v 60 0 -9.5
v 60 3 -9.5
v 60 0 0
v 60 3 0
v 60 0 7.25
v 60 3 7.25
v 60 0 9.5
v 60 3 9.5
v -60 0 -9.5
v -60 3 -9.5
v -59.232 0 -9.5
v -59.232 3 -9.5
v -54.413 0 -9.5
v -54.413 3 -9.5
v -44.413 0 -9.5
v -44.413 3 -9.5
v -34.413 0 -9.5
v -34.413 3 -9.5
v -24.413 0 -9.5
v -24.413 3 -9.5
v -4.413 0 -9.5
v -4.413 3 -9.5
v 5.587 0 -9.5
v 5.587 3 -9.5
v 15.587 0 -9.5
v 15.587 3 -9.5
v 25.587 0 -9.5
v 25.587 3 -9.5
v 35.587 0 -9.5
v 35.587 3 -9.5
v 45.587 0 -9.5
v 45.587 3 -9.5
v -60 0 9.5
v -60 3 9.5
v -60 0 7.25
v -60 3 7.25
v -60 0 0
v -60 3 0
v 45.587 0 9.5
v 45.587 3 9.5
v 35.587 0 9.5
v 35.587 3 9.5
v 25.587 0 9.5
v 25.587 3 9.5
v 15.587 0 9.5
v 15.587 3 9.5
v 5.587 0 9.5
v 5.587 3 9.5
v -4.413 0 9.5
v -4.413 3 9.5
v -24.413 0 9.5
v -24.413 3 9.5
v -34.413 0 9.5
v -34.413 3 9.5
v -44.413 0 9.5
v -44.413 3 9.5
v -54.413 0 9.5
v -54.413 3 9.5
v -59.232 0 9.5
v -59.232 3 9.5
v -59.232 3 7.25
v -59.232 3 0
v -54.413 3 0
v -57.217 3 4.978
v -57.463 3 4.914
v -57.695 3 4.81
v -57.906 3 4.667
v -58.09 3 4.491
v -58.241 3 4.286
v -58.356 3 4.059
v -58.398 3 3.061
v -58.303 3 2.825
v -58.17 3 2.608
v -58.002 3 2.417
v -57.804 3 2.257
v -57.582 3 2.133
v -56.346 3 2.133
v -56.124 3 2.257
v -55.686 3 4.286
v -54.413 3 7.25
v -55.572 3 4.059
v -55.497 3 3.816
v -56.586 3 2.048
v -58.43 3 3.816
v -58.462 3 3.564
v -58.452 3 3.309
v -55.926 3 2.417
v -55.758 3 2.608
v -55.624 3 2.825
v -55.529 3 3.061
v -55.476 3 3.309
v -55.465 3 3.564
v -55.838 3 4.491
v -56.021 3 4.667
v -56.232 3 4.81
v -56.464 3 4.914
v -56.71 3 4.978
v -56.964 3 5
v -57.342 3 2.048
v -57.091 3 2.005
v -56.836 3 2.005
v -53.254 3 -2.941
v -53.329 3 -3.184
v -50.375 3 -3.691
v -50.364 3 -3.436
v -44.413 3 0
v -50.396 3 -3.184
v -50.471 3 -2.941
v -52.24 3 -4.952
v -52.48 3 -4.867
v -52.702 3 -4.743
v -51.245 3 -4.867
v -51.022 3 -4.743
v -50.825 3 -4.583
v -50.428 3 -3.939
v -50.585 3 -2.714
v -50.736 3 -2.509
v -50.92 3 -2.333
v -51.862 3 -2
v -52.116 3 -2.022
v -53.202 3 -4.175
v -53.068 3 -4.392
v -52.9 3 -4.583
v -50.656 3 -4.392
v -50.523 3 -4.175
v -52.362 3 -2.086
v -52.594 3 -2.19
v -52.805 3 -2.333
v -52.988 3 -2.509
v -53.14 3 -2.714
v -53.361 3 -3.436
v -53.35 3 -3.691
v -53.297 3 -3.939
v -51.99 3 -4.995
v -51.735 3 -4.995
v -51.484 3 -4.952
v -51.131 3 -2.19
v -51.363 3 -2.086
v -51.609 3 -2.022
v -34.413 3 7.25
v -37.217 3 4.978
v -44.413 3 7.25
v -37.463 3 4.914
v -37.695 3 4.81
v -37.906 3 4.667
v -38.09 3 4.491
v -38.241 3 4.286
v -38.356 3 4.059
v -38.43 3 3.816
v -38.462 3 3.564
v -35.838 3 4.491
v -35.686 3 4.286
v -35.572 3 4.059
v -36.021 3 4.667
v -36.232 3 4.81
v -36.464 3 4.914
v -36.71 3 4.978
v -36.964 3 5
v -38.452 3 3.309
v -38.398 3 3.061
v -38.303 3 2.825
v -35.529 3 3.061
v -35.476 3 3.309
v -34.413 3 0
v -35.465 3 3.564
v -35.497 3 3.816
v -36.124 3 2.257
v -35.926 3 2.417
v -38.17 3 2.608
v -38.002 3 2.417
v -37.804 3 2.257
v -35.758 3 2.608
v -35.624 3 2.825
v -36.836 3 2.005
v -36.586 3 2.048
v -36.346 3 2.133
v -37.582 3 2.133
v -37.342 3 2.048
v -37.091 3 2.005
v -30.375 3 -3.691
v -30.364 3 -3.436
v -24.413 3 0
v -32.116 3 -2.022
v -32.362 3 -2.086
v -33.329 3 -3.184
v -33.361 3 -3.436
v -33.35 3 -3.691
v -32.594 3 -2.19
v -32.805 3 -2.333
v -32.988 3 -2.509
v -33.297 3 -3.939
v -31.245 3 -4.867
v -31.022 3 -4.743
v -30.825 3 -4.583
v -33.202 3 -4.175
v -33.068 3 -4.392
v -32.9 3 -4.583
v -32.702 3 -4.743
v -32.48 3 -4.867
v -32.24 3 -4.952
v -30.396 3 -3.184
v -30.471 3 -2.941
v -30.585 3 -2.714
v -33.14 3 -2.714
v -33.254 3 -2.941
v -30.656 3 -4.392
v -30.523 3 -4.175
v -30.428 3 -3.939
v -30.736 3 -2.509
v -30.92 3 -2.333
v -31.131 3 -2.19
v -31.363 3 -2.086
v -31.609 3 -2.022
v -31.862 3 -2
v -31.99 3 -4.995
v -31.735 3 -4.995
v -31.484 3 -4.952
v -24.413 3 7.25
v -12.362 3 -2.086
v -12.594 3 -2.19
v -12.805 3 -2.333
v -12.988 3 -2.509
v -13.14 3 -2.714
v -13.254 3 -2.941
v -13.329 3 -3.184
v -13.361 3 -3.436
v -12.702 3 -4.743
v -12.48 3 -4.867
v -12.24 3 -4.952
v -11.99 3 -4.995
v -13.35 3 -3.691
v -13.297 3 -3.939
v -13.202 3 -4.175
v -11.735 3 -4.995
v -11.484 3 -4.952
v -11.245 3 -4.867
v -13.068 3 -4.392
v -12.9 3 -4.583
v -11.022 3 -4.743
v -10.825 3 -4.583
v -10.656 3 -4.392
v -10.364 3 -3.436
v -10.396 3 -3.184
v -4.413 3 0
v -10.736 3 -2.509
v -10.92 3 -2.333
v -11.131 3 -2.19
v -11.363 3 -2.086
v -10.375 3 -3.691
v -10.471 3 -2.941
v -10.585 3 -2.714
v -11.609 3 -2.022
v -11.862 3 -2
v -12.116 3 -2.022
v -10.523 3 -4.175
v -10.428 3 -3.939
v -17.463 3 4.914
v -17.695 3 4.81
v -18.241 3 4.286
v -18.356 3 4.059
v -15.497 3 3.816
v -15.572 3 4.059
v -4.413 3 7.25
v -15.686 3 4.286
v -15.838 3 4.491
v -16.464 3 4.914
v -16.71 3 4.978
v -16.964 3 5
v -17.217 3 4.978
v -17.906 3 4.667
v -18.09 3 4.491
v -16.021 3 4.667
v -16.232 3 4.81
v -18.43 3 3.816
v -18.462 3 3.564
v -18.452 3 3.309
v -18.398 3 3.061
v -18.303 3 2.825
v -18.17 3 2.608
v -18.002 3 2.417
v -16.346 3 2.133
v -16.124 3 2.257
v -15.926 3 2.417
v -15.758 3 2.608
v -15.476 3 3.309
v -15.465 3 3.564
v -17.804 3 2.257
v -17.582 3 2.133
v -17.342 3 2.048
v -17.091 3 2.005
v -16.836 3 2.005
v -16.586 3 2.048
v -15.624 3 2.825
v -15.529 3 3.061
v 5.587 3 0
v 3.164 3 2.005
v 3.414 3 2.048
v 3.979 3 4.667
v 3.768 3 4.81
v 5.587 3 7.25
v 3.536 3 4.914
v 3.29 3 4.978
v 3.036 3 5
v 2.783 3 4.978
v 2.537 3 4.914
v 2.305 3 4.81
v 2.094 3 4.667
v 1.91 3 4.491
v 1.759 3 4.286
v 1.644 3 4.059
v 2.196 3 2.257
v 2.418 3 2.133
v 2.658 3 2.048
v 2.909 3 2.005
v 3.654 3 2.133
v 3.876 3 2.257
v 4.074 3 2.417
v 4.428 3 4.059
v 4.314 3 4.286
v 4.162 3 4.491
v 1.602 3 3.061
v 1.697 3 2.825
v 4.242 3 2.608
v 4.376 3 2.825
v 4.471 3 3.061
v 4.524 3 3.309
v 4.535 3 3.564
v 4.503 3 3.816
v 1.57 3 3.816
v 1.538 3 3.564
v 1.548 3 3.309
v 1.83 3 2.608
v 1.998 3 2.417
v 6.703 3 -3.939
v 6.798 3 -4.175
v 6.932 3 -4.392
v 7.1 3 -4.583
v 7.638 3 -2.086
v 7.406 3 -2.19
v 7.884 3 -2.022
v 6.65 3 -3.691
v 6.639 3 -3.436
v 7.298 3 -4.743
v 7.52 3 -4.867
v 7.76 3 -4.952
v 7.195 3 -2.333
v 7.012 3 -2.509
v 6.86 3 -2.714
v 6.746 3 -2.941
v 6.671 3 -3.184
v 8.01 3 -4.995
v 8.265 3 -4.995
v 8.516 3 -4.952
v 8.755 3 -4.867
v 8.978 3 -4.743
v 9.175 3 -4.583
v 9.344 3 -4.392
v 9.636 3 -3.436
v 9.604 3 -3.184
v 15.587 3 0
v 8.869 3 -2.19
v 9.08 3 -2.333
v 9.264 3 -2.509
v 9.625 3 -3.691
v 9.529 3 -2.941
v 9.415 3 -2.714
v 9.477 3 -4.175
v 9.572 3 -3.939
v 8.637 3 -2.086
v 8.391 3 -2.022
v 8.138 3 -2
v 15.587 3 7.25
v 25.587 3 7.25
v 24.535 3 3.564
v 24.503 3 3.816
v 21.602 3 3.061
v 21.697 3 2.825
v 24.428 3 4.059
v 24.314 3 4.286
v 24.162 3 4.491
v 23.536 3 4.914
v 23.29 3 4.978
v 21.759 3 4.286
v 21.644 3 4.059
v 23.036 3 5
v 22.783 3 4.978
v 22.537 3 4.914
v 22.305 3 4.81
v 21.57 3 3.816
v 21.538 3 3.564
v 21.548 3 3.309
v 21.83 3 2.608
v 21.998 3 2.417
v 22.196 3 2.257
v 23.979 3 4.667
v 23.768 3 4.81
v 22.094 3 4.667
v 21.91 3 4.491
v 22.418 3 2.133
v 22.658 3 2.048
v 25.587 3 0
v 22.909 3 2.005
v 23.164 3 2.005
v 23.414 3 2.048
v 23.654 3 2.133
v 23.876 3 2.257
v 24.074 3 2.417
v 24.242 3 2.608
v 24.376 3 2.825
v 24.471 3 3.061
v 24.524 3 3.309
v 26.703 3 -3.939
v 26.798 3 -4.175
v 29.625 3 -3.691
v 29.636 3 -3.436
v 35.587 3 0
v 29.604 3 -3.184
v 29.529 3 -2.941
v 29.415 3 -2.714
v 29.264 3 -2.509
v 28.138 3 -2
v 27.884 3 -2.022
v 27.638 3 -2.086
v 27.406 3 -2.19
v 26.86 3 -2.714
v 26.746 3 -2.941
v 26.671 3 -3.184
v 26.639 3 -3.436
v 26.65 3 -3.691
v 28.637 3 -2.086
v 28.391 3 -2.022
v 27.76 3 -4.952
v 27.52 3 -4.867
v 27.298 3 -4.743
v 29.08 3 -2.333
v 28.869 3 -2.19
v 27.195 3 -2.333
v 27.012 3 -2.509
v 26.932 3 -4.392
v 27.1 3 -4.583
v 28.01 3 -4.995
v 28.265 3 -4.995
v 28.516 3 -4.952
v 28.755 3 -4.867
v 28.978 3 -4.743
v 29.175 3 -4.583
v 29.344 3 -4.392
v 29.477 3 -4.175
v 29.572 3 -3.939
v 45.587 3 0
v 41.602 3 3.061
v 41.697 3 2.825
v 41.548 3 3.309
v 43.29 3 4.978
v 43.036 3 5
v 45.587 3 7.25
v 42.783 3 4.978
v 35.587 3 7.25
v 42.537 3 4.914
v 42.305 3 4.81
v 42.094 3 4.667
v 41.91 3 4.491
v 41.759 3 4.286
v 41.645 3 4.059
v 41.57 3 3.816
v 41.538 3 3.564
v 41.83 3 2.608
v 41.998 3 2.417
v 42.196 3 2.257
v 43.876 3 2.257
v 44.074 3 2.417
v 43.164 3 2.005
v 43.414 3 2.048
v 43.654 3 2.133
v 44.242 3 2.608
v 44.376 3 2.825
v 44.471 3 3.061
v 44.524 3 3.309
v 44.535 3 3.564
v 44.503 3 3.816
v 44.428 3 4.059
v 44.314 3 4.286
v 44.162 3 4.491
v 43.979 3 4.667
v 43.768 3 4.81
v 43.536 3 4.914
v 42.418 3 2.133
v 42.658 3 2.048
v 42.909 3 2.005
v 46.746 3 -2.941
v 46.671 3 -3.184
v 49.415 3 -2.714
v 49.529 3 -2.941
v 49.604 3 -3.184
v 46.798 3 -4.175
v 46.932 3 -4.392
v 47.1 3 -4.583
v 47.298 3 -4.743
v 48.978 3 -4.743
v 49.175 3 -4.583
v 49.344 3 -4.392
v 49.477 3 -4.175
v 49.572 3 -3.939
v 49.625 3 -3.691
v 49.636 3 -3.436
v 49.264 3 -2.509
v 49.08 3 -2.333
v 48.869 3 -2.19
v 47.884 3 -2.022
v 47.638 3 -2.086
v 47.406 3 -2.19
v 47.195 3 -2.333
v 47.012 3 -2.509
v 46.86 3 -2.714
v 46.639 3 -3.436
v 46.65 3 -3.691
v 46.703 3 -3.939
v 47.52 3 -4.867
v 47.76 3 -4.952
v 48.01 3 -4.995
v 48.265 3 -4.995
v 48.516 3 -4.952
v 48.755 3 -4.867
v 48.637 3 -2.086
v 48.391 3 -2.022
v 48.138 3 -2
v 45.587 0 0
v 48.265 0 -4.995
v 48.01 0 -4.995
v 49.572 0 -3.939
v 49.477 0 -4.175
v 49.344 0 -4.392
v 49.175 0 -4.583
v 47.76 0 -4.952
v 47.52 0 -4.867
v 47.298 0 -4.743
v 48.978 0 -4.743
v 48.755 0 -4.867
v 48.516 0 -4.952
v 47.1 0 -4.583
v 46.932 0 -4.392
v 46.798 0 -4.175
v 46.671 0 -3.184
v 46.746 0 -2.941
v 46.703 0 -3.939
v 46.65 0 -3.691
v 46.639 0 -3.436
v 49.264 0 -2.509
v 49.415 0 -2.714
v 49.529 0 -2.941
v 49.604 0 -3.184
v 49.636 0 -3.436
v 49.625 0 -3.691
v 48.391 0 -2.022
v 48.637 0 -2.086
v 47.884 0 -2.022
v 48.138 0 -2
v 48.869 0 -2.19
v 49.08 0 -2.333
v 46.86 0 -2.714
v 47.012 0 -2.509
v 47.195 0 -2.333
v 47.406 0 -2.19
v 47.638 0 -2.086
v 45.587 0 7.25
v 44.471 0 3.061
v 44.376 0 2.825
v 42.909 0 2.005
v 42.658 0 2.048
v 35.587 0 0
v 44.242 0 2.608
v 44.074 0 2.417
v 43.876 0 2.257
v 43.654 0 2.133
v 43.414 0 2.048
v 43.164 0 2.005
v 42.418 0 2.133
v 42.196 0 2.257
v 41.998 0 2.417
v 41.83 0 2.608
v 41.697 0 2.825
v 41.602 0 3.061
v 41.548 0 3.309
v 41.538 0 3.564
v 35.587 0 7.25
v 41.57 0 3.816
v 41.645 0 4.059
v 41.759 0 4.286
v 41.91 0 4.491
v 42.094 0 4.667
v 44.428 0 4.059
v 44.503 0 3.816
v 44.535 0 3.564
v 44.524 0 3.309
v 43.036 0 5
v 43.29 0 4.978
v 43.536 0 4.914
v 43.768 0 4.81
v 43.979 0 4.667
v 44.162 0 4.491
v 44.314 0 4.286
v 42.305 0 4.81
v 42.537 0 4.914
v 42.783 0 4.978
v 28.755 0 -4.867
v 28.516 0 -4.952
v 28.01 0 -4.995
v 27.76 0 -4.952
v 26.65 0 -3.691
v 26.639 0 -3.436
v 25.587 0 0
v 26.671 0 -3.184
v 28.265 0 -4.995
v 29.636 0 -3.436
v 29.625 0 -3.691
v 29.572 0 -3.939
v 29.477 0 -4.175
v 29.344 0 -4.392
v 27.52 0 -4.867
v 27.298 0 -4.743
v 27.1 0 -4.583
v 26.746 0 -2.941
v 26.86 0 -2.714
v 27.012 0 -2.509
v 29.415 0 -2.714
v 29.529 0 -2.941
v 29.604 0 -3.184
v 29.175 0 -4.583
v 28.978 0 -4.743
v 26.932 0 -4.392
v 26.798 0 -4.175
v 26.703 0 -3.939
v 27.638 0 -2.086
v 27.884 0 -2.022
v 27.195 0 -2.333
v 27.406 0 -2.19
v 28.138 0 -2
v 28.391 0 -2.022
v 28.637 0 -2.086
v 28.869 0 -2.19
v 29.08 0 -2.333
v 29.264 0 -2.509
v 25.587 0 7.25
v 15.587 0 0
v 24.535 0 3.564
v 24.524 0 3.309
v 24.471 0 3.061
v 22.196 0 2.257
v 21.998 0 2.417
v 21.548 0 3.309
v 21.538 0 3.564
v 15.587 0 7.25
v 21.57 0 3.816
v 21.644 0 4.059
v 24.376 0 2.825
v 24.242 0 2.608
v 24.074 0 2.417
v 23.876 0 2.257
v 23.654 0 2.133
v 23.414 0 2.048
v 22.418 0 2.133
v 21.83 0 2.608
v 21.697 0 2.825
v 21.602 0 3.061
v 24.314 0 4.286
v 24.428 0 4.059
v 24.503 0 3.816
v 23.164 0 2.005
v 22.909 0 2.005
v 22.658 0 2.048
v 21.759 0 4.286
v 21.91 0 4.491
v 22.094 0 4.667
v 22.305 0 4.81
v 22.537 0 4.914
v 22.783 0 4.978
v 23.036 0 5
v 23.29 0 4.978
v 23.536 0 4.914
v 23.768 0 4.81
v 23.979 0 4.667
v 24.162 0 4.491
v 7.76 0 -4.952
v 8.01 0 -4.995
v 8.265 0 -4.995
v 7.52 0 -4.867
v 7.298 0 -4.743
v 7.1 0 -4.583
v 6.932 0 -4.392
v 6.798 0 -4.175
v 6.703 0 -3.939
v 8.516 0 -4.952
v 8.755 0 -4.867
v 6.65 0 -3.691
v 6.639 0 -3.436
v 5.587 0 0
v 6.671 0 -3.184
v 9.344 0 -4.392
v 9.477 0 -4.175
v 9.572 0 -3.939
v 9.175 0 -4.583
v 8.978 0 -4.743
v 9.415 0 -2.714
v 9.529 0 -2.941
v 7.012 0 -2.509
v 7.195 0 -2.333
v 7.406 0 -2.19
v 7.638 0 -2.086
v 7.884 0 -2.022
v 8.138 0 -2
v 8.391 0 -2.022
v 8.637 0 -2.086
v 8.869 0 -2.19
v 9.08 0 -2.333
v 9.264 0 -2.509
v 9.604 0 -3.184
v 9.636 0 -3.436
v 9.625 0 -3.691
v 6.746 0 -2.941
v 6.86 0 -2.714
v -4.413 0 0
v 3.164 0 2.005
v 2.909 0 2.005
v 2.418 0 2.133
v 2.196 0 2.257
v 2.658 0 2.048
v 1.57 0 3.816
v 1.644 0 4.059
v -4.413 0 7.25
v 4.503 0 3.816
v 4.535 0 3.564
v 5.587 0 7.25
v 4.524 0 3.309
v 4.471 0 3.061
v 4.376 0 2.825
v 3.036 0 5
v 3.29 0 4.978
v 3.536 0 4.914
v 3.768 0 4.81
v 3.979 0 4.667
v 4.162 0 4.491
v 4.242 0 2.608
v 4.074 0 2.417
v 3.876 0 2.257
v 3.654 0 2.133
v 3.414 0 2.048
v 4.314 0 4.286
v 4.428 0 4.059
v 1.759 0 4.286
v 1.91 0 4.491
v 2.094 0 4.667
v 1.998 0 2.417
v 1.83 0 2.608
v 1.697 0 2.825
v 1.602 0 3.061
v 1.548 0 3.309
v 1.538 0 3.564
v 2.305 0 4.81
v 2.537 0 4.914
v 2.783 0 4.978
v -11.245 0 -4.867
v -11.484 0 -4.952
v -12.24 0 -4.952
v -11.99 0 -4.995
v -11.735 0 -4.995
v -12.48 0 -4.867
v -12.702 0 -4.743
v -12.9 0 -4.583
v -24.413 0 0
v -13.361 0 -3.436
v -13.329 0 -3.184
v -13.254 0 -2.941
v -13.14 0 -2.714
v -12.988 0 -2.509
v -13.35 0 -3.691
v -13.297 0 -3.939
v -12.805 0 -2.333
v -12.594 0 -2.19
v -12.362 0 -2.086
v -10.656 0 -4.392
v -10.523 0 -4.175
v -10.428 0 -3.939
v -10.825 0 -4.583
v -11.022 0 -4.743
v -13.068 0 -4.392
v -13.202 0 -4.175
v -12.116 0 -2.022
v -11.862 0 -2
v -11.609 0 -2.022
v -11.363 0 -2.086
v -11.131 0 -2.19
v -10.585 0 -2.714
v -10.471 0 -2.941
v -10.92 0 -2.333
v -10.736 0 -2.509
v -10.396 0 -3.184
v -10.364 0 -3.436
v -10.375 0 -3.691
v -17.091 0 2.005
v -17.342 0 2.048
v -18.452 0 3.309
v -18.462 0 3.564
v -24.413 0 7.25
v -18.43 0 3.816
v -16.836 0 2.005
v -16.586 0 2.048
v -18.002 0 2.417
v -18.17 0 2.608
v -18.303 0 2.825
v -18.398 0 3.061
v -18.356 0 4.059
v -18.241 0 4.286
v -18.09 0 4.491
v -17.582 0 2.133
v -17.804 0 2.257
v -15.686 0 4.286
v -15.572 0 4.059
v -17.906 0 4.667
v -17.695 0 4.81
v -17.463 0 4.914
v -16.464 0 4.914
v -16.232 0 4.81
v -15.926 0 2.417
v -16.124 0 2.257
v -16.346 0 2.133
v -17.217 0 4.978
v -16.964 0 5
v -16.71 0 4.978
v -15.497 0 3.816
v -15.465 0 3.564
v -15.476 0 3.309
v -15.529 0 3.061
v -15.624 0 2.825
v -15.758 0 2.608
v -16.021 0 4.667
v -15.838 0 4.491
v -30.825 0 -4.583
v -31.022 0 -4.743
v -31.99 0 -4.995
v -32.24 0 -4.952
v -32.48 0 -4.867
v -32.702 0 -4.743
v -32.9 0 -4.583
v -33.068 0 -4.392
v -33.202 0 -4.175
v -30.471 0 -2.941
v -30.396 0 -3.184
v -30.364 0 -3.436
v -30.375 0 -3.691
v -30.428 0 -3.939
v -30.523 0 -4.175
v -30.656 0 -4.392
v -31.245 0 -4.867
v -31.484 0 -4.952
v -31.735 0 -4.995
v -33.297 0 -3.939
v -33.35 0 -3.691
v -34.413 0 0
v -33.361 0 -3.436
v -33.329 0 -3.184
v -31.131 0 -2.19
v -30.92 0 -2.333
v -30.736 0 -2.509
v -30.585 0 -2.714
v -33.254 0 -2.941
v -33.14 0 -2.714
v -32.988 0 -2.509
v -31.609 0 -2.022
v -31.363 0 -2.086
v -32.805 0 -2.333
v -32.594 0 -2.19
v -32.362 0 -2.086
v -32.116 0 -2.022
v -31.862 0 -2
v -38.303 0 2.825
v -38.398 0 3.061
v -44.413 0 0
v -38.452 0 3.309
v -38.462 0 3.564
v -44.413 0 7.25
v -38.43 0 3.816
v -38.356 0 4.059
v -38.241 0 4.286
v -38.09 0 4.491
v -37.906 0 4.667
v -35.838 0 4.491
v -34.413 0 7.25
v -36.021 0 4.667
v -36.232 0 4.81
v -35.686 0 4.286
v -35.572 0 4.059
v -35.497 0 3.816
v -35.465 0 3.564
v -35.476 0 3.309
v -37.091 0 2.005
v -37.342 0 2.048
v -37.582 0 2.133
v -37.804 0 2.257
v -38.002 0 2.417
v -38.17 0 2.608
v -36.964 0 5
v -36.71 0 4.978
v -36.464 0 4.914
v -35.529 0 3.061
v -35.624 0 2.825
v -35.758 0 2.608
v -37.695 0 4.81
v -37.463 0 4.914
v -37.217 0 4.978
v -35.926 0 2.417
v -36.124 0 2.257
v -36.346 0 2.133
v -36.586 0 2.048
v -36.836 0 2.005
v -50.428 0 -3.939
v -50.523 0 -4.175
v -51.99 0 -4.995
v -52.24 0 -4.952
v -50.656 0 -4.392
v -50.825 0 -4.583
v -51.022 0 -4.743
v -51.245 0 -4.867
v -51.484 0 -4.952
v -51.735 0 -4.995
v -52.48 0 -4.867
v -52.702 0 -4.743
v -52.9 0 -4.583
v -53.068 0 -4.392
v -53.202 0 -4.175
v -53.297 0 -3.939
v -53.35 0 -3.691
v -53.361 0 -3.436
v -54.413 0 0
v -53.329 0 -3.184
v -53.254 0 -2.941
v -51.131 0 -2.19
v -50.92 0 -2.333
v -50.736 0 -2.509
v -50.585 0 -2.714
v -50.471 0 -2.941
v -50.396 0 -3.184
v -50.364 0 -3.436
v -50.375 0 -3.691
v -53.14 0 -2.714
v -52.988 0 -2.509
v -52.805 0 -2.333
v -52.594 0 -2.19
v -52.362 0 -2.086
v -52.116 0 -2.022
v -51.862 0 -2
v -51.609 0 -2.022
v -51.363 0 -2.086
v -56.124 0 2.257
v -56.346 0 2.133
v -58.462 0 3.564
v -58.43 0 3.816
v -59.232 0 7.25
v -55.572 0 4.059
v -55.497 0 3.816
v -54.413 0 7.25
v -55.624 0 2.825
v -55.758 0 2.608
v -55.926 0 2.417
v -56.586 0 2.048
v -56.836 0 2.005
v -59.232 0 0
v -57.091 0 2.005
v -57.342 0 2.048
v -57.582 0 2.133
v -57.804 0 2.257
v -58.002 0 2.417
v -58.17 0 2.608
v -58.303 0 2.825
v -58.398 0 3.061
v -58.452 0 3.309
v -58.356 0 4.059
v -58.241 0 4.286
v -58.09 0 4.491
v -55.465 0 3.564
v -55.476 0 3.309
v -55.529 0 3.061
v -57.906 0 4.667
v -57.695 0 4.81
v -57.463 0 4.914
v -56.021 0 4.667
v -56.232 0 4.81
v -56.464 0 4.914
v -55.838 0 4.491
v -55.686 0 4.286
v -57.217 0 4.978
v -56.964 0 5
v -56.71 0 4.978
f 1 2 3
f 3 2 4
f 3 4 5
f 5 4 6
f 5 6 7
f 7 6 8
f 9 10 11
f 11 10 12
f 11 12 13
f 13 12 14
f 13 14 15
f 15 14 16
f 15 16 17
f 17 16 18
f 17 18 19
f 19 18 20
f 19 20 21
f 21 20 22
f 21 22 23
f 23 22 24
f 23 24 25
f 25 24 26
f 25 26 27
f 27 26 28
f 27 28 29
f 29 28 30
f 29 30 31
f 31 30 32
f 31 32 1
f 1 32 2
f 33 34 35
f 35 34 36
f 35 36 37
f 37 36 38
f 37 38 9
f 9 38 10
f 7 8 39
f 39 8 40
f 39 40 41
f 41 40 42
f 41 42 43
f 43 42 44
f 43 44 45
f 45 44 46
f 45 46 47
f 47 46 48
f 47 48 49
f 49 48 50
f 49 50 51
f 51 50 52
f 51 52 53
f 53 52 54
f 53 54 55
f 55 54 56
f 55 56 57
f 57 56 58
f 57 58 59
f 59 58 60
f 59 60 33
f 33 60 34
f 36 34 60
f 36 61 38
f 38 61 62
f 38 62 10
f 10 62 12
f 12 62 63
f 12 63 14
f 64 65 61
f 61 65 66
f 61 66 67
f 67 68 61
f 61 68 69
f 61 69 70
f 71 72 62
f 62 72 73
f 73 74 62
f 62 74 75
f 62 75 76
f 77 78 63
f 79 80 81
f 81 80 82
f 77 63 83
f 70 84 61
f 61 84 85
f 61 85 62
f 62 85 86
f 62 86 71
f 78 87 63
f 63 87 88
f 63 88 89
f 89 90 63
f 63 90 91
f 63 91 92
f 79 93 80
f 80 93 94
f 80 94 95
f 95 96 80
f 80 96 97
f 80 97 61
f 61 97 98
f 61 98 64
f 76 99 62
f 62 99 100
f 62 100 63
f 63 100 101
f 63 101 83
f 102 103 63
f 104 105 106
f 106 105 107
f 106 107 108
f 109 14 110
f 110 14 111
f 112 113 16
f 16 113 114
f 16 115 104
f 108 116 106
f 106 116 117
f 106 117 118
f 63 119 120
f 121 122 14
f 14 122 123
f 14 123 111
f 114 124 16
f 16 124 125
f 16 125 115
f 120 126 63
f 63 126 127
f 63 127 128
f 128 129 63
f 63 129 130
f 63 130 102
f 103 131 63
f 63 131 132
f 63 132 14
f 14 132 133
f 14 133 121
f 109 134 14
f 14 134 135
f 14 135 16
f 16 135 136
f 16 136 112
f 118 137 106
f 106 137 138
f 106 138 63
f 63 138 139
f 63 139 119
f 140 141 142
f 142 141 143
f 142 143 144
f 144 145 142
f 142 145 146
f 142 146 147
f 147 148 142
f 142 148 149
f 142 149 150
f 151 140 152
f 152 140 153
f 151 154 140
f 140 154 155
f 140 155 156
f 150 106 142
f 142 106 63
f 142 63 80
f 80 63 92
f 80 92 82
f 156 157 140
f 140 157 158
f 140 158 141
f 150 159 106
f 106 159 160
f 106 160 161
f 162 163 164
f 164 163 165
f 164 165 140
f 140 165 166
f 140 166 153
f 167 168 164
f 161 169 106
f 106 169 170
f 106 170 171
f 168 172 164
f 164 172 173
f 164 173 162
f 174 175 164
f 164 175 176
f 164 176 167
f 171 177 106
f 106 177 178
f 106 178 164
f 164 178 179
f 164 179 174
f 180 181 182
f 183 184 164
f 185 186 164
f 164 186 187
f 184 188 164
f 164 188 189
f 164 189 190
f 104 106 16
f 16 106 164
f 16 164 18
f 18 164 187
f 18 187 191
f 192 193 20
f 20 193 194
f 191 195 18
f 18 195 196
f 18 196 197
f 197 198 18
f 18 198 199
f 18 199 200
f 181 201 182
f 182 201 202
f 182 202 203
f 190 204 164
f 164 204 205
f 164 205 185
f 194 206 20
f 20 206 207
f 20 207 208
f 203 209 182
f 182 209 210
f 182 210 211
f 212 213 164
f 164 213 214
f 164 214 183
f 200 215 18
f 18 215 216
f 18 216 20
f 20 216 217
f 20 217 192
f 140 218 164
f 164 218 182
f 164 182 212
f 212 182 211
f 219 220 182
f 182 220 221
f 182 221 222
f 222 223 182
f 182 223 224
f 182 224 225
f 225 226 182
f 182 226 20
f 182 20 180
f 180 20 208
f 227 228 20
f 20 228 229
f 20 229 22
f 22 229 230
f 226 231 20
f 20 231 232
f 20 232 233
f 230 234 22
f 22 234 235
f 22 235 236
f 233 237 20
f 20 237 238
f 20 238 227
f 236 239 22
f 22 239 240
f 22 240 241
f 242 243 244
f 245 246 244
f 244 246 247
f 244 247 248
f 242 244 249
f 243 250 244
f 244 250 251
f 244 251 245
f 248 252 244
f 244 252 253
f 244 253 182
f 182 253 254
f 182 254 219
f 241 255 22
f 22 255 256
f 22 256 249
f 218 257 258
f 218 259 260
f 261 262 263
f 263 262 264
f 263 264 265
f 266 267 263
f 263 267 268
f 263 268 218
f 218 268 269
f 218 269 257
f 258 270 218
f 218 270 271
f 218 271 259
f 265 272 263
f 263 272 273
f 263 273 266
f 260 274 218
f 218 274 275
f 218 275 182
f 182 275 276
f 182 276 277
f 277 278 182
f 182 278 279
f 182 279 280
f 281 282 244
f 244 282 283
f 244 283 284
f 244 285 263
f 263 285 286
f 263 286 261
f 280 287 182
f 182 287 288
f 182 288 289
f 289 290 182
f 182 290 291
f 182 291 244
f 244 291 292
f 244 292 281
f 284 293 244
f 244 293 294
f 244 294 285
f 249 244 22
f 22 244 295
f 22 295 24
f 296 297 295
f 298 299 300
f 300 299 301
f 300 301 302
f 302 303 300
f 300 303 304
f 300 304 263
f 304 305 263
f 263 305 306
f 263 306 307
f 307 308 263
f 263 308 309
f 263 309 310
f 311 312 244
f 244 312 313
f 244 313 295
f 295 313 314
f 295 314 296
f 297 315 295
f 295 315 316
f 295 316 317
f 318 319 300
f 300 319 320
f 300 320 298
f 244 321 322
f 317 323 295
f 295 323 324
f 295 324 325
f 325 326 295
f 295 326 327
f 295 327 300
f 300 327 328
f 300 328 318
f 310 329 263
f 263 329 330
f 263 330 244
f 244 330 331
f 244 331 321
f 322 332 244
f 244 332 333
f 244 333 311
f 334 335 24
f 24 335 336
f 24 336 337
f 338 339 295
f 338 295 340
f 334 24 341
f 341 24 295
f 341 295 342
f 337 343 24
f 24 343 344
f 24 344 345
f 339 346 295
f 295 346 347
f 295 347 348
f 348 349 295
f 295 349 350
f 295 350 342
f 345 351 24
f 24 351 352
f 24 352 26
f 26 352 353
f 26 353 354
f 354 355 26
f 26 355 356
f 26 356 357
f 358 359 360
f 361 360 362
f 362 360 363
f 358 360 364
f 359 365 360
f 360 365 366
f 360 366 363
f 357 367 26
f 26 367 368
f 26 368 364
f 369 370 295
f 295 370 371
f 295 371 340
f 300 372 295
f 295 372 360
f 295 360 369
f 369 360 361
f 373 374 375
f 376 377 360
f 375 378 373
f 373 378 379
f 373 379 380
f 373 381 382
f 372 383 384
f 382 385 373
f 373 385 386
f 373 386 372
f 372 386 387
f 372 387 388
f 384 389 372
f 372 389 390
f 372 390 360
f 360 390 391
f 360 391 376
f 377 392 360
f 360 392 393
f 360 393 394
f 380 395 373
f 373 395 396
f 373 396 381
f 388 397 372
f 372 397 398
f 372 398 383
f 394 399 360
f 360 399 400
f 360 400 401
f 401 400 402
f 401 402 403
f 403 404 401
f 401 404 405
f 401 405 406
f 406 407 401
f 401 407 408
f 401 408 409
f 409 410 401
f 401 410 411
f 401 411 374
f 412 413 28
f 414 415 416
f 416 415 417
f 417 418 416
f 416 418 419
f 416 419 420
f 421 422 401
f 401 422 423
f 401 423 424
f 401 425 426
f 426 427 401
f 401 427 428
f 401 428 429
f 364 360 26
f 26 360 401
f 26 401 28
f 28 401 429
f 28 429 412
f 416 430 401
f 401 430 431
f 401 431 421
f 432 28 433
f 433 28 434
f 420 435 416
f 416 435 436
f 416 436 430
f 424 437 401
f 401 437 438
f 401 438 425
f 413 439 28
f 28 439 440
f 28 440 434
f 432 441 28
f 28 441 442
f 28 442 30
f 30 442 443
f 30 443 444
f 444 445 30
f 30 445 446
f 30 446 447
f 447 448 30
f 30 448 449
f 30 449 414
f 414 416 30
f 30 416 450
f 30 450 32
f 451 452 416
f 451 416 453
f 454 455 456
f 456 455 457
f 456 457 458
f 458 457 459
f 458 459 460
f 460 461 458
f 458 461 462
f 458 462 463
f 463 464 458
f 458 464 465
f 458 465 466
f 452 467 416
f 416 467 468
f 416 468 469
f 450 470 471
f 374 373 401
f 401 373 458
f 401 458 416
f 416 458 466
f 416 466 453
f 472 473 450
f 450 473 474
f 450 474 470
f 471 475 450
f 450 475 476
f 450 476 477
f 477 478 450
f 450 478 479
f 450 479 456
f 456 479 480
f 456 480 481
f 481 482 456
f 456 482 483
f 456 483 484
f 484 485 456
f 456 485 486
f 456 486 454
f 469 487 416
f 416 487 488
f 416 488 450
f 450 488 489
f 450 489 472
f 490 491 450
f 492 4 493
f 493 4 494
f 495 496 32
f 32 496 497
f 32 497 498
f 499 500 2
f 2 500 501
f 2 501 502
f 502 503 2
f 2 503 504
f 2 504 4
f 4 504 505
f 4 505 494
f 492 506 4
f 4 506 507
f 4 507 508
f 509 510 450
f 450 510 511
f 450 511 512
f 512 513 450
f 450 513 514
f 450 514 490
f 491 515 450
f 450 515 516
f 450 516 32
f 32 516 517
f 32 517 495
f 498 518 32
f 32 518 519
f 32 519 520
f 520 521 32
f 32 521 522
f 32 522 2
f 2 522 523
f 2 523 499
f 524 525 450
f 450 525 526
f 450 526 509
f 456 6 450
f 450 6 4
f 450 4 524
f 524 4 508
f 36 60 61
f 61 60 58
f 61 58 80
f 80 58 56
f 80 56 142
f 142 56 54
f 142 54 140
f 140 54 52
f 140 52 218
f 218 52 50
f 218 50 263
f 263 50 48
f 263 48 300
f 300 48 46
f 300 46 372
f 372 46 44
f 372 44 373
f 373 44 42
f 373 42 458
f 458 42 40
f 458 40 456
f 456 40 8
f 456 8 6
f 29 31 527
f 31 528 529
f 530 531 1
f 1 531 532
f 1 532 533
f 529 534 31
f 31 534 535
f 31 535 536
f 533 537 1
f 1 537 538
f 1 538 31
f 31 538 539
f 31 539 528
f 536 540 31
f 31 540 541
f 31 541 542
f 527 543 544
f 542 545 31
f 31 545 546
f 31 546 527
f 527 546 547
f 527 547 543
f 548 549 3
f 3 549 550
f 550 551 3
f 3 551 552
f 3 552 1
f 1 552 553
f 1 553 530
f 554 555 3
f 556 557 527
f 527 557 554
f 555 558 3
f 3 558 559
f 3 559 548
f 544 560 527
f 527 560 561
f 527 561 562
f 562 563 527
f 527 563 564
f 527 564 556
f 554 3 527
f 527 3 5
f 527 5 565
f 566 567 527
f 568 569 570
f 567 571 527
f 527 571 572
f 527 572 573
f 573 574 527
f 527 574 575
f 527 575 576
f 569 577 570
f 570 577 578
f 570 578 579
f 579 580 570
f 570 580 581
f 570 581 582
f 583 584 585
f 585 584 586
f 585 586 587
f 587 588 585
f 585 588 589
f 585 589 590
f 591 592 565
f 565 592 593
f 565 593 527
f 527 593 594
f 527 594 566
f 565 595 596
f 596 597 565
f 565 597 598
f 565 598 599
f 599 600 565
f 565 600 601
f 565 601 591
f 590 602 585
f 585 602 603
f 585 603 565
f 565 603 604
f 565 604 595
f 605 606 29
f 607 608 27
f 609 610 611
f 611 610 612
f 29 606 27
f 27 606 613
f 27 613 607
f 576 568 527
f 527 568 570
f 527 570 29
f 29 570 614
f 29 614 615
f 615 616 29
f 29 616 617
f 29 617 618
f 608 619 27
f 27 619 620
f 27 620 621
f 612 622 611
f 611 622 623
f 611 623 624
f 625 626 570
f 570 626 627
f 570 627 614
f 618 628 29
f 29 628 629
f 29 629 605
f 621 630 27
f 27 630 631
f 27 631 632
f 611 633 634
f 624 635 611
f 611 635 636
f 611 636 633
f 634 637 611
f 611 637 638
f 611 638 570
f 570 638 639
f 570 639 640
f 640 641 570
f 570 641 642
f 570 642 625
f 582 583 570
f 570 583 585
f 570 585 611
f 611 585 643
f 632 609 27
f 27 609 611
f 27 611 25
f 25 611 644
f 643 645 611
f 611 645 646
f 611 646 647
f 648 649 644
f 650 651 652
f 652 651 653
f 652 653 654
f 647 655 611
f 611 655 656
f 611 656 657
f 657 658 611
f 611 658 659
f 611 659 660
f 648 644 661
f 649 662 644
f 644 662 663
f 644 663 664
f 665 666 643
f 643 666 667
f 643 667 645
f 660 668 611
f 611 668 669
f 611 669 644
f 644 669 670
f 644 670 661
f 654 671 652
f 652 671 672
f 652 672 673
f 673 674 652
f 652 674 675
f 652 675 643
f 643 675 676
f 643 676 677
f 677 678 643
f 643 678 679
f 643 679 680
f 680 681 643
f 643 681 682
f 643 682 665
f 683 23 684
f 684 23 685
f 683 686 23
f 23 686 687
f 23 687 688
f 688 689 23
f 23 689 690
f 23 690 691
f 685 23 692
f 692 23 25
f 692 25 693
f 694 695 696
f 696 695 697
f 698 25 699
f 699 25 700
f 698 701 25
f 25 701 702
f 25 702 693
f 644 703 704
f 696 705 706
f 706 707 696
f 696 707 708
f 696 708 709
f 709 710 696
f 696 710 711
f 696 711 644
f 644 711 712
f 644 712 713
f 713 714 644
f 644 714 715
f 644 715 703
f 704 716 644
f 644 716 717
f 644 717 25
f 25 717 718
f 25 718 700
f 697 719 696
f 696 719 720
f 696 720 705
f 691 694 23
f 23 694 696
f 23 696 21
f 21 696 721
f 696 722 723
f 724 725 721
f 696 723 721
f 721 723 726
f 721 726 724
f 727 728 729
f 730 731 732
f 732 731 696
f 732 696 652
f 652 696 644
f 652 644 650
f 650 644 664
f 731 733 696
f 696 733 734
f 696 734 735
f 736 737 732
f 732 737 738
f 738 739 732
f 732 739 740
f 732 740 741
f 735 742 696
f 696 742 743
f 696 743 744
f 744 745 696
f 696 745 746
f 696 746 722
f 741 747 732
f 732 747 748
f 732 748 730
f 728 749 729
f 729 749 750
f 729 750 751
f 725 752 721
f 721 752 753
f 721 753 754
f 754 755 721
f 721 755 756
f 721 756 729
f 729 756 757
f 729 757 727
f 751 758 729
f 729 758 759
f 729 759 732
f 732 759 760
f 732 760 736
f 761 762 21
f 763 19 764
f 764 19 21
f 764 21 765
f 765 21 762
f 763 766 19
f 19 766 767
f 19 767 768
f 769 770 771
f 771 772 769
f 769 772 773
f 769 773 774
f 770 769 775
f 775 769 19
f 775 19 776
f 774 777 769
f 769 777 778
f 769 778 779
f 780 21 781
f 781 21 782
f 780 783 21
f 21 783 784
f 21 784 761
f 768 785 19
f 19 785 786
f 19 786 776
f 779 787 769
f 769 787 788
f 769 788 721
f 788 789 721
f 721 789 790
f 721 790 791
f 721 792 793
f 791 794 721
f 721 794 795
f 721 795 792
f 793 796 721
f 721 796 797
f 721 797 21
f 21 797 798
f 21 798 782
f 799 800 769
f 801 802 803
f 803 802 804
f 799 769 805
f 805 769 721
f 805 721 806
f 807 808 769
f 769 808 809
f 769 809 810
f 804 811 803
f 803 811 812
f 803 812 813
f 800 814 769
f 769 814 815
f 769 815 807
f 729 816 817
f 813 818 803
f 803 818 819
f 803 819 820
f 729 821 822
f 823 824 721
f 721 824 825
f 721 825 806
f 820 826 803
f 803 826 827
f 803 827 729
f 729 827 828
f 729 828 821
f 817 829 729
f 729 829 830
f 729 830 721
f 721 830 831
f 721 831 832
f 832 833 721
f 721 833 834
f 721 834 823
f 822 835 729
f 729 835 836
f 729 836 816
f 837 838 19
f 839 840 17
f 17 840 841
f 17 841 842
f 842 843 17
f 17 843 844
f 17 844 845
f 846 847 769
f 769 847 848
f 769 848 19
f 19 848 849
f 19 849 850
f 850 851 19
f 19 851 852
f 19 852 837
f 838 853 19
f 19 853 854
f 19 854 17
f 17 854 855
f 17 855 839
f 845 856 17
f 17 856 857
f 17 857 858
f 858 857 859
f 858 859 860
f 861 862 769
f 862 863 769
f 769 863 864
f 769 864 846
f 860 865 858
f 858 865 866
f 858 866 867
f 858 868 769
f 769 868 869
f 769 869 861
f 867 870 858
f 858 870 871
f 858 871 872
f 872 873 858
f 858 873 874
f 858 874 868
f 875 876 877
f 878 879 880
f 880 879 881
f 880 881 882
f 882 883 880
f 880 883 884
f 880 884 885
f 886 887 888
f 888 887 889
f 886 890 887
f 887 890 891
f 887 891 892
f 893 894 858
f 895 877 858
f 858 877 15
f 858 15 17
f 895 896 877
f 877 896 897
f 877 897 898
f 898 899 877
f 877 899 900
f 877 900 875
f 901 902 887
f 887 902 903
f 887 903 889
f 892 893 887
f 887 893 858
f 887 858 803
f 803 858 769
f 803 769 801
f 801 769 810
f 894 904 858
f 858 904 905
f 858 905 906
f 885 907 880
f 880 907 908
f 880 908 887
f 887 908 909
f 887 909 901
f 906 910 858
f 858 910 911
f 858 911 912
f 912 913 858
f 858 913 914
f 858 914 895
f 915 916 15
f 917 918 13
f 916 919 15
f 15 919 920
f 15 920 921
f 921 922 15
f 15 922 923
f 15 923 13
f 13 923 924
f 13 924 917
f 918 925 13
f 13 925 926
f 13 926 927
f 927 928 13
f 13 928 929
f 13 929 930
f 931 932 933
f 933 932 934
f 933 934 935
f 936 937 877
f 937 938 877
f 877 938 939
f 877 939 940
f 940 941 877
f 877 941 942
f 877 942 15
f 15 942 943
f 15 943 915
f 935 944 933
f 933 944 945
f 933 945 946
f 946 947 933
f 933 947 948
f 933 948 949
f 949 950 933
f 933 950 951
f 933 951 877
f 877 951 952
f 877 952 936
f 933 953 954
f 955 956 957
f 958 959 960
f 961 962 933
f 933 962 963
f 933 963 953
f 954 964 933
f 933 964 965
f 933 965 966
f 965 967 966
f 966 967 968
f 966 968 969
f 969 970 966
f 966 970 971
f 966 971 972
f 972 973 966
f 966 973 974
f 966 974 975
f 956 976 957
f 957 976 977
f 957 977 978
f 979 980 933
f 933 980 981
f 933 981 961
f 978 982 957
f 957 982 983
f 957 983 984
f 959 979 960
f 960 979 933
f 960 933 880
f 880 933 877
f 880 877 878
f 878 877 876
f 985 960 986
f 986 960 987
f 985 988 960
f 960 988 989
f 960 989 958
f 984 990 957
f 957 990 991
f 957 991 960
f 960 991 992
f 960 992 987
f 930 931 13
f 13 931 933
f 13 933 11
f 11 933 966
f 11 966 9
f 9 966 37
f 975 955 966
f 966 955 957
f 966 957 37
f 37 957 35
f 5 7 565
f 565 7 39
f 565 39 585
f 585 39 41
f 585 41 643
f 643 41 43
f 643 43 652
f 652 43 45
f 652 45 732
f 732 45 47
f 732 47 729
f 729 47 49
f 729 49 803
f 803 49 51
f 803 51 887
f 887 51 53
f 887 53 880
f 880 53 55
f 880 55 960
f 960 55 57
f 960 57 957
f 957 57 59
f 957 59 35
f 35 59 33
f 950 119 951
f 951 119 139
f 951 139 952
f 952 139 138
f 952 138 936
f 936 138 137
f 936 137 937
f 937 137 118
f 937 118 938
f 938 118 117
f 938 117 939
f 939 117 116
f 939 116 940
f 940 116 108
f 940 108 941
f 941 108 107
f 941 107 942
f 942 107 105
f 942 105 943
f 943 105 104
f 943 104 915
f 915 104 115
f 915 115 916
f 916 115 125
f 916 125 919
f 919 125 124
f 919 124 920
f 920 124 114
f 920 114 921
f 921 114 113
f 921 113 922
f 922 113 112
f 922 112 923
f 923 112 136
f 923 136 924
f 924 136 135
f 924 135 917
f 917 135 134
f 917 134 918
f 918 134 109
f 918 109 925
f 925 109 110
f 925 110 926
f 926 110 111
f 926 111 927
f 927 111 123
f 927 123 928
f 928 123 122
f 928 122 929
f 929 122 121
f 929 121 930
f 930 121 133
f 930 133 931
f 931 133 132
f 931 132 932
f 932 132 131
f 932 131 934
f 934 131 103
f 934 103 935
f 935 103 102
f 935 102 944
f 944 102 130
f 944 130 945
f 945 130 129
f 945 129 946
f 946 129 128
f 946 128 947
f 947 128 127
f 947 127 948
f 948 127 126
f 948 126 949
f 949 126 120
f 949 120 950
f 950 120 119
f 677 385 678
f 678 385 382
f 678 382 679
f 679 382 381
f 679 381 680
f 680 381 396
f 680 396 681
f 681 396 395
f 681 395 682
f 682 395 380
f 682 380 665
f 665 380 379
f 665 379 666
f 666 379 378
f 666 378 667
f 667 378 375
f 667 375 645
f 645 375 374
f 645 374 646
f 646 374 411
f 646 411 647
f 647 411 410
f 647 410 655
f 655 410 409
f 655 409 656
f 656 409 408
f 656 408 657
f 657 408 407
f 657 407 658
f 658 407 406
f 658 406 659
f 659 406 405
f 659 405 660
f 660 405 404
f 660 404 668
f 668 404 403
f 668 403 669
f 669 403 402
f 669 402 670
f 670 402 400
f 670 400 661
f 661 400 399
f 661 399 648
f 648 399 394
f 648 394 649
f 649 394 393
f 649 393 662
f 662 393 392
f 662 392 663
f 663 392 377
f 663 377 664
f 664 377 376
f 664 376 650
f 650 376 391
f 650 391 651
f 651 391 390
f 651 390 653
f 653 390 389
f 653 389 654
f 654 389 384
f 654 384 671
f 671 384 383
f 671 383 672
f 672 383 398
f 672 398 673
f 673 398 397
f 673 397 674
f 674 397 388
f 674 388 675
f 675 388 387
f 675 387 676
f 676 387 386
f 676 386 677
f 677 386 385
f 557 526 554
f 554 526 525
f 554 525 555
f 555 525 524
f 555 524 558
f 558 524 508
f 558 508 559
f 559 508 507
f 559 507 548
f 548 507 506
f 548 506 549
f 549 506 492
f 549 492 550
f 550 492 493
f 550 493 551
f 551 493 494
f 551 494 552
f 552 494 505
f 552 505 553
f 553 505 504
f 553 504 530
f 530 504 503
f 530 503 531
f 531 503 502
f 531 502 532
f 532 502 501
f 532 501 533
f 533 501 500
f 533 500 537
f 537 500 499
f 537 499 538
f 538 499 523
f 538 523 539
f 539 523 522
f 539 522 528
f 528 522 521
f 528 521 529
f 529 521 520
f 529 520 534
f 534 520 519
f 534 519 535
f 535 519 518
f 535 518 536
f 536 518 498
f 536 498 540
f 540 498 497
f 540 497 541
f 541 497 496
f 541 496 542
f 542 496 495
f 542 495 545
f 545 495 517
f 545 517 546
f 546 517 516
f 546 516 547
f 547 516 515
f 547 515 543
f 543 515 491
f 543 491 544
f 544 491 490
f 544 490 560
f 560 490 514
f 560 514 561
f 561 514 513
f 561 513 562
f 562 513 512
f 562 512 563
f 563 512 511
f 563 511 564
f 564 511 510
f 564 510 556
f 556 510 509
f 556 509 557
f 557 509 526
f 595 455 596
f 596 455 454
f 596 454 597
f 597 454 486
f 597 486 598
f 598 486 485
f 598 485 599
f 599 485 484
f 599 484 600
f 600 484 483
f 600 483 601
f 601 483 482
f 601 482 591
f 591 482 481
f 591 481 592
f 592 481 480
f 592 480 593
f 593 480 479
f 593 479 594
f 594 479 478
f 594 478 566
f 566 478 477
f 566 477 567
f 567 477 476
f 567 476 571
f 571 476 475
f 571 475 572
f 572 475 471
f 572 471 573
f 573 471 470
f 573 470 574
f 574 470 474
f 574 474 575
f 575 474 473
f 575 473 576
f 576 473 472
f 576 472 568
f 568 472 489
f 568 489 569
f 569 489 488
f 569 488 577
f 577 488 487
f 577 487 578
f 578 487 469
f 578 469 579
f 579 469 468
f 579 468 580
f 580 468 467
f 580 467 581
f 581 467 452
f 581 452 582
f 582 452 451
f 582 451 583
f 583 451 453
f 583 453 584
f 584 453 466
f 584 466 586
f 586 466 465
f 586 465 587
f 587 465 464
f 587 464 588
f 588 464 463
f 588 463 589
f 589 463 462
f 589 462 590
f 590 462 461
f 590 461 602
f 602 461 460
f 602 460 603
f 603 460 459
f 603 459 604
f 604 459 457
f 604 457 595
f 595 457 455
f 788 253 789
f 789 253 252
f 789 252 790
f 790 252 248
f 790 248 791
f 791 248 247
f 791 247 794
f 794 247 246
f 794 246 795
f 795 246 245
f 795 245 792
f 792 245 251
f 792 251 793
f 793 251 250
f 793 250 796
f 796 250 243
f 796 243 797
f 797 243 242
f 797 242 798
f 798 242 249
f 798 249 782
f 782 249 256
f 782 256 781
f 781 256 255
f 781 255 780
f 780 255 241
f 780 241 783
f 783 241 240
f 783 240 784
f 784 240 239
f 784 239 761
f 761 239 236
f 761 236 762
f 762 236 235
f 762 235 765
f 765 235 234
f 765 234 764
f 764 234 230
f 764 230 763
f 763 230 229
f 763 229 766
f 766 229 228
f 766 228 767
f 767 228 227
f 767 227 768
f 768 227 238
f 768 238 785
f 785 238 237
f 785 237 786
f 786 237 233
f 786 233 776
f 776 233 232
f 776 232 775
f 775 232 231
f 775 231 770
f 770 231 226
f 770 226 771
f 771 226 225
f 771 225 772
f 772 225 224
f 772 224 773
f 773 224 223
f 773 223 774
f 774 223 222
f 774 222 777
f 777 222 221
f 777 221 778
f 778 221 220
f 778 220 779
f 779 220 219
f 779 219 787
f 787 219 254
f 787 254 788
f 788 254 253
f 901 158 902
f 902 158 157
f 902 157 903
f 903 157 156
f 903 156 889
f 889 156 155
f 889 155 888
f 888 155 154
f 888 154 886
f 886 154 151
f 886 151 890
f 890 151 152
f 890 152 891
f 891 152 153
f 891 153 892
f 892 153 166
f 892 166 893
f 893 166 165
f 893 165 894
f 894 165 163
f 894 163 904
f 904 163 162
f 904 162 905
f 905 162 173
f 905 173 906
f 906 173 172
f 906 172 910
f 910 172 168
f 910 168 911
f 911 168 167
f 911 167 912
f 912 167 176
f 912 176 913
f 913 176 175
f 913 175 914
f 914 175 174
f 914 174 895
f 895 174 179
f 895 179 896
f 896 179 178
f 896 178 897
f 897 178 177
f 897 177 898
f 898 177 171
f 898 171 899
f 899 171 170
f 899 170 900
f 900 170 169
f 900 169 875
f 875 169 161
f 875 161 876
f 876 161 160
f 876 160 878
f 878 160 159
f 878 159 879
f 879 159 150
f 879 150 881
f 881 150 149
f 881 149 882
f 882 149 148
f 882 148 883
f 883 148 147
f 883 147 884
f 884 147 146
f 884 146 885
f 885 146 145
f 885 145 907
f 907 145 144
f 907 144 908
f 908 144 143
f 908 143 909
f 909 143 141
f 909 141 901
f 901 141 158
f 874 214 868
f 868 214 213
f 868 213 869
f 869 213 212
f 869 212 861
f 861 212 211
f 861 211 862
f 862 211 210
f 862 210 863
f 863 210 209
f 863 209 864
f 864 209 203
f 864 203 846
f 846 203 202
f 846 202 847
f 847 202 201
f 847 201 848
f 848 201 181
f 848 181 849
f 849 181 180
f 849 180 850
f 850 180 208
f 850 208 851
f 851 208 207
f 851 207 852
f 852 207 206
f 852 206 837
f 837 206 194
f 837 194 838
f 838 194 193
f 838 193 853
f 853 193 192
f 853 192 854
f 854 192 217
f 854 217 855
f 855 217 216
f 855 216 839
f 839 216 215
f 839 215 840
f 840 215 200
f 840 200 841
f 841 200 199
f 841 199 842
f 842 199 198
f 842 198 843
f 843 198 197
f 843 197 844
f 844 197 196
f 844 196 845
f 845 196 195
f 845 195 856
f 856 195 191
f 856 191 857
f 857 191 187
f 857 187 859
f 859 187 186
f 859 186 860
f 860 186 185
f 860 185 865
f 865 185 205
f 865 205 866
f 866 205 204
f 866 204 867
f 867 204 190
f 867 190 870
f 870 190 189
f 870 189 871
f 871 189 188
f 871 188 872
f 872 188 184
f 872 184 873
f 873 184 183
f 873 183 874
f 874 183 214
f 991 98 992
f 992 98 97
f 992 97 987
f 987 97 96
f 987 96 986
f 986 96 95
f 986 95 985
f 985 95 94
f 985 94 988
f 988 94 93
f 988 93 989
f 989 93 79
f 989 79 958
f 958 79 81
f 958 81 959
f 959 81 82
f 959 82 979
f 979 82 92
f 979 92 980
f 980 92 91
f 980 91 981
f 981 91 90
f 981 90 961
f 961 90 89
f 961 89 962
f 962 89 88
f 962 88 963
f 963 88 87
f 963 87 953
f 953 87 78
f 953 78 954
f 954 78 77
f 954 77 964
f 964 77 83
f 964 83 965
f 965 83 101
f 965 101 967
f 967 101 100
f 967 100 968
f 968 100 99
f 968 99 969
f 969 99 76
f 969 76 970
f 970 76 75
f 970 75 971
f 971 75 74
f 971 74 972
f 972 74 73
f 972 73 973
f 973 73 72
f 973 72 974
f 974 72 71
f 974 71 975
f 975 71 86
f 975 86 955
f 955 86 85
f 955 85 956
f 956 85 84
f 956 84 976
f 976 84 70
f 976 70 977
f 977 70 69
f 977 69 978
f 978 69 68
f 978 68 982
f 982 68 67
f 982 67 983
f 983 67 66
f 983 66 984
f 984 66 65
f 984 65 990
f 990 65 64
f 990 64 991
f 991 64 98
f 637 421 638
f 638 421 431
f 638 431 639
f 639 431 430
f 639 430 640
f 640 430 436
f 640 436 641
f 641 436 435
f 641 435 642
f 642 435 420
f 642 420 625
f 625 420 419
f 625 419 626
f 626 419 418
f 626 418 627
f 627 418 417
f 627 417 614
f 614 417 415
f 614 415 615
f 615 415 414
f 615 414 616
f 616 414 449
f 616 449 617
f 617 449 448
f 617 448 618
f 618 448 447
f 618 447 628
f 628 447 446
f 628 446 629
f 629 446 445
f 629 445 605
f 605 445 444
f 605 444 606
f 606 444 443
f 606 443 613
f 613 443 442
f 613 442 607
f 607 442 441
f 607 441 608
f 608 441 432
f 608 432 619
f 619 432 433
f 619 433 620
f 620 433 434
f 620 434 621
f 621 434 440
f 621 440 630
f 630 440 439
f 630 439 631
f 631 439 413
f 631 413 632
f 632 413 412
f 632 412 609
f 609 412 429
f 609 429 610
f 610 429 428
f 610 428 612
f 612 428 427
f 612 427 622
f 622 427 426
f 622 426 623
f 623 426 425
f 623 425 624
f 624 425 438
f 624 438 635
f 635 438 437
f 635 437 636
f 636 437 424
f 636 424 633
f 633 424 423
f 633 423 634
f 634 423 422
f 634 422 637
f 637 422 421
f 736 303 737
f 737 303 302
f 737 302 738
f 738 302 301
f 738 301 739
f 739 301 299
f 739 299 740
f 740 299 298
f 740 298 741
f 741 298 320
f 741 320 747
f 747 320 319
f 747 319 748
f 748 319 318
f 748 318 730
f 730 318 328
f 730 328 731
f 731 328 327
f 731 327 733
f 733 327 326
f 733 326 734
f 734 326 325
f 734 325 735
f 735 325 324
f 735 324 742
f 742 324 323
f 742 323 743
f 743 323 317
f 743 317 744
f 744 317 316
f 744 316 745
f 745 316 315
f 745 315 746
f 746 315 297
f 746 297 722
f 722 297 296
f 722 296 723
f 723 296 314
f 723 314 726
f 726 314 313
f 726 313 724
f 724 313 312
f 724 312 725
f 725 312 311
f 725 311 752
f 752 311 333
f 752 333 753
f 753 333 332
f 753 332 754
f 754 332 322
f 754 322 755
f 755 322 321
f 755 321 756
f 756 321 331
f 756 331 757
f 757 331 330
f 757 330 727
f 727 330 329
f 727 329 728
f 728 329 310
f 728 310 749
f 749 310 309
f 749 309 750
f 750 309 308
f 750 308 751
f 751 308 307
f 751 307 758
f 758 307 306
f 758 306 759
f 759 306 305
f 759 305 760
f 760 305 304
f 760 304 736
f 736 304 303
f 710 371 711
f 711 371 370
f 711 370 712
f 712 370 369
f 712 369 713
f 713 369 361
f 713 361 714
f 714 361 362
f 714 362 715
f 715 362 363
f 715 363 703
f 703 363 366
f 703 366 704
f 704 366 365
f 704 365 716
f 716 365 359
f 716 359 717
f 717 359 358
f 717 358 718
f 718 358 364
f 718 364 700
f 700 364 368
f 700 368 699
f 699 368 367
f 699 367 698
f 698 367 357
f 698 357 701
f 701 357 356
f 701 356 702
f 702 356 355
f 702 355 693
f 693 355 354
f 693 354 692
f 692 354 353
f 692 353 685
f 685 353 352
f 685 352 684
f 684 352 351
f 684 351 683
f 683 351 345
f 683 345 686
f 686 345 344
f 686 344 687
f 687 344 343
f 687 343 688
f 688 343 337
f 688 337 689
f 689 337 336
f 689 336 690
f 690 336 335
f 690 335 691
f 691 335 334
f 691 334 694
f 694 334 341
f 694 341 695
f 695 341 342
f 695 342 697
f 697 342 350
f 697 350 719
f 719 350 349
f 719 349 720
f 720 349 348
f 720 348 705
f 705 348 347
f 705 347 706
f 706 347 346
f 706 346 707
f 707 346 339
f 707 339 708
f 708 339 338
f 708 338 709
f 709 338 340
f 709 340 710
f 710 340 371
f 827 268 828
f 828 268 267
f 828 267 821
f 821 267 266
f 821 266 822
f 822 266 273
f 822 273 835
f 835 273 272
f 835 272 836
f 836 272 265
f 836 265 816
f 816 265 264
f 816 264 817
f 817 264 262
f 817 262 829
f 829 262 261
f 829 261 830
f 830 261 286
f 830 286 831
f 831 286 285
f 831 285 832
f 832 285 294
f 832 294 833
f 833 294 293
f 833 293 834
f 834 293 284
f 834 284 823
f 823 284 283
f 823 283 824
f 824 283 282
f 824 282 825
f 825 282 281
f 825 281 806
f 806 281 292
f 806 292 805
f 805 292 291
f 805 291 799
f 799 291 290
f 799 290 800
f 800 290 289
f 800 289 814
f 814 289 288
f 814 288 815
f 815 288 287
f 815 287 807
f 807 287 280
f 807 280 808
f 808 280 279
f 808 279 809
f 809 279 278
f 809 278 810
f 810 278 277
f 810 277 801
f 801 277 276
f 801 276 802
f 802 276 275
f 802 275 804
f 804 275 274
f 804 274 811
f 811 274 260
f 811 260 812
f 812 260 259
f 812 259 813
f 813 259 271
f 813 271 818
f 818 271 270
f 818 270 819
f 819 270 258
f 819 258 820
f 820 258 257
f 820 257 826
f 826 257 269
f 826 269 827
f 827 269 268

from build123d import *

# Parameters (mm, degrees)
SKETCH_1_W          = 120
SKETCH_1_H          = 19
EXTRUDE_1_DEPTH     = 3
SKETCH_2_R          = 1.5
CUT_EXTRUDE_1_DEPTH = 3


with BuildPart() as part:
    # Эскиз1 → Бобышка-Вытянуть1 (new body)
    with BuildSketch(Plane(origin=(0, 0, 0), x_dir=(1, 0, 0), z_dir=(0, 1, 0))):
        Rectangle(SKETCH_1_W, SKETCH_1_H)
    extrude(amount=EXTRUDE_1_DEPTH)

    # Эскиз2 → Вырез-Вытянуть1 (cut)
    with BuildSketch(Plane(origin=(0, 3, 0), x_dir=(1, 0, 0), z_dir=(0, 1, 0))):
        with Locations((-51.862444671, 3.5)):
            Circle(SKETCH_2_R)
        with Locations((-56.963668737, -3.5)):
            Circle(SKETCH_2_R)
        with Locations((-31.862444671, 3.5)):
            Circle(SKETCH_2_R)
        with Locations((-36.963668737, -3.5)):
            Circle(SKETCH_2_R)
        with Locations((-11.862444671, 3.5)):
            Circle(SKETCH_2_R)
        with Locations((-16.963668737, -3.5)):
            Circle(SKETCH_2_R)
        with Locations((8.137555329, 3.5)):
            Circle(SKETCH_2_R)
        with Locations((3.036331263, -3.5)):
            Circle(SKETCH_2_R)
        with Locations((28.137555329, 3.5)):
            Circle(SKETCH_2_R)
        with Locations((23.036331263, -3.5)):
            Circle(SKETCH_2_R)
        with Locations((48.137555329, 3.5)):
            Circle(SKETCH_2_R)
        with Locations((43.036331263, -3.5)):
            Circle(SKETCH_2_R)
    extrude(amount=-CUT_EXTRUDE_1_DEPTH, mode=Mode.SUBTRACT)


solid = part.part
